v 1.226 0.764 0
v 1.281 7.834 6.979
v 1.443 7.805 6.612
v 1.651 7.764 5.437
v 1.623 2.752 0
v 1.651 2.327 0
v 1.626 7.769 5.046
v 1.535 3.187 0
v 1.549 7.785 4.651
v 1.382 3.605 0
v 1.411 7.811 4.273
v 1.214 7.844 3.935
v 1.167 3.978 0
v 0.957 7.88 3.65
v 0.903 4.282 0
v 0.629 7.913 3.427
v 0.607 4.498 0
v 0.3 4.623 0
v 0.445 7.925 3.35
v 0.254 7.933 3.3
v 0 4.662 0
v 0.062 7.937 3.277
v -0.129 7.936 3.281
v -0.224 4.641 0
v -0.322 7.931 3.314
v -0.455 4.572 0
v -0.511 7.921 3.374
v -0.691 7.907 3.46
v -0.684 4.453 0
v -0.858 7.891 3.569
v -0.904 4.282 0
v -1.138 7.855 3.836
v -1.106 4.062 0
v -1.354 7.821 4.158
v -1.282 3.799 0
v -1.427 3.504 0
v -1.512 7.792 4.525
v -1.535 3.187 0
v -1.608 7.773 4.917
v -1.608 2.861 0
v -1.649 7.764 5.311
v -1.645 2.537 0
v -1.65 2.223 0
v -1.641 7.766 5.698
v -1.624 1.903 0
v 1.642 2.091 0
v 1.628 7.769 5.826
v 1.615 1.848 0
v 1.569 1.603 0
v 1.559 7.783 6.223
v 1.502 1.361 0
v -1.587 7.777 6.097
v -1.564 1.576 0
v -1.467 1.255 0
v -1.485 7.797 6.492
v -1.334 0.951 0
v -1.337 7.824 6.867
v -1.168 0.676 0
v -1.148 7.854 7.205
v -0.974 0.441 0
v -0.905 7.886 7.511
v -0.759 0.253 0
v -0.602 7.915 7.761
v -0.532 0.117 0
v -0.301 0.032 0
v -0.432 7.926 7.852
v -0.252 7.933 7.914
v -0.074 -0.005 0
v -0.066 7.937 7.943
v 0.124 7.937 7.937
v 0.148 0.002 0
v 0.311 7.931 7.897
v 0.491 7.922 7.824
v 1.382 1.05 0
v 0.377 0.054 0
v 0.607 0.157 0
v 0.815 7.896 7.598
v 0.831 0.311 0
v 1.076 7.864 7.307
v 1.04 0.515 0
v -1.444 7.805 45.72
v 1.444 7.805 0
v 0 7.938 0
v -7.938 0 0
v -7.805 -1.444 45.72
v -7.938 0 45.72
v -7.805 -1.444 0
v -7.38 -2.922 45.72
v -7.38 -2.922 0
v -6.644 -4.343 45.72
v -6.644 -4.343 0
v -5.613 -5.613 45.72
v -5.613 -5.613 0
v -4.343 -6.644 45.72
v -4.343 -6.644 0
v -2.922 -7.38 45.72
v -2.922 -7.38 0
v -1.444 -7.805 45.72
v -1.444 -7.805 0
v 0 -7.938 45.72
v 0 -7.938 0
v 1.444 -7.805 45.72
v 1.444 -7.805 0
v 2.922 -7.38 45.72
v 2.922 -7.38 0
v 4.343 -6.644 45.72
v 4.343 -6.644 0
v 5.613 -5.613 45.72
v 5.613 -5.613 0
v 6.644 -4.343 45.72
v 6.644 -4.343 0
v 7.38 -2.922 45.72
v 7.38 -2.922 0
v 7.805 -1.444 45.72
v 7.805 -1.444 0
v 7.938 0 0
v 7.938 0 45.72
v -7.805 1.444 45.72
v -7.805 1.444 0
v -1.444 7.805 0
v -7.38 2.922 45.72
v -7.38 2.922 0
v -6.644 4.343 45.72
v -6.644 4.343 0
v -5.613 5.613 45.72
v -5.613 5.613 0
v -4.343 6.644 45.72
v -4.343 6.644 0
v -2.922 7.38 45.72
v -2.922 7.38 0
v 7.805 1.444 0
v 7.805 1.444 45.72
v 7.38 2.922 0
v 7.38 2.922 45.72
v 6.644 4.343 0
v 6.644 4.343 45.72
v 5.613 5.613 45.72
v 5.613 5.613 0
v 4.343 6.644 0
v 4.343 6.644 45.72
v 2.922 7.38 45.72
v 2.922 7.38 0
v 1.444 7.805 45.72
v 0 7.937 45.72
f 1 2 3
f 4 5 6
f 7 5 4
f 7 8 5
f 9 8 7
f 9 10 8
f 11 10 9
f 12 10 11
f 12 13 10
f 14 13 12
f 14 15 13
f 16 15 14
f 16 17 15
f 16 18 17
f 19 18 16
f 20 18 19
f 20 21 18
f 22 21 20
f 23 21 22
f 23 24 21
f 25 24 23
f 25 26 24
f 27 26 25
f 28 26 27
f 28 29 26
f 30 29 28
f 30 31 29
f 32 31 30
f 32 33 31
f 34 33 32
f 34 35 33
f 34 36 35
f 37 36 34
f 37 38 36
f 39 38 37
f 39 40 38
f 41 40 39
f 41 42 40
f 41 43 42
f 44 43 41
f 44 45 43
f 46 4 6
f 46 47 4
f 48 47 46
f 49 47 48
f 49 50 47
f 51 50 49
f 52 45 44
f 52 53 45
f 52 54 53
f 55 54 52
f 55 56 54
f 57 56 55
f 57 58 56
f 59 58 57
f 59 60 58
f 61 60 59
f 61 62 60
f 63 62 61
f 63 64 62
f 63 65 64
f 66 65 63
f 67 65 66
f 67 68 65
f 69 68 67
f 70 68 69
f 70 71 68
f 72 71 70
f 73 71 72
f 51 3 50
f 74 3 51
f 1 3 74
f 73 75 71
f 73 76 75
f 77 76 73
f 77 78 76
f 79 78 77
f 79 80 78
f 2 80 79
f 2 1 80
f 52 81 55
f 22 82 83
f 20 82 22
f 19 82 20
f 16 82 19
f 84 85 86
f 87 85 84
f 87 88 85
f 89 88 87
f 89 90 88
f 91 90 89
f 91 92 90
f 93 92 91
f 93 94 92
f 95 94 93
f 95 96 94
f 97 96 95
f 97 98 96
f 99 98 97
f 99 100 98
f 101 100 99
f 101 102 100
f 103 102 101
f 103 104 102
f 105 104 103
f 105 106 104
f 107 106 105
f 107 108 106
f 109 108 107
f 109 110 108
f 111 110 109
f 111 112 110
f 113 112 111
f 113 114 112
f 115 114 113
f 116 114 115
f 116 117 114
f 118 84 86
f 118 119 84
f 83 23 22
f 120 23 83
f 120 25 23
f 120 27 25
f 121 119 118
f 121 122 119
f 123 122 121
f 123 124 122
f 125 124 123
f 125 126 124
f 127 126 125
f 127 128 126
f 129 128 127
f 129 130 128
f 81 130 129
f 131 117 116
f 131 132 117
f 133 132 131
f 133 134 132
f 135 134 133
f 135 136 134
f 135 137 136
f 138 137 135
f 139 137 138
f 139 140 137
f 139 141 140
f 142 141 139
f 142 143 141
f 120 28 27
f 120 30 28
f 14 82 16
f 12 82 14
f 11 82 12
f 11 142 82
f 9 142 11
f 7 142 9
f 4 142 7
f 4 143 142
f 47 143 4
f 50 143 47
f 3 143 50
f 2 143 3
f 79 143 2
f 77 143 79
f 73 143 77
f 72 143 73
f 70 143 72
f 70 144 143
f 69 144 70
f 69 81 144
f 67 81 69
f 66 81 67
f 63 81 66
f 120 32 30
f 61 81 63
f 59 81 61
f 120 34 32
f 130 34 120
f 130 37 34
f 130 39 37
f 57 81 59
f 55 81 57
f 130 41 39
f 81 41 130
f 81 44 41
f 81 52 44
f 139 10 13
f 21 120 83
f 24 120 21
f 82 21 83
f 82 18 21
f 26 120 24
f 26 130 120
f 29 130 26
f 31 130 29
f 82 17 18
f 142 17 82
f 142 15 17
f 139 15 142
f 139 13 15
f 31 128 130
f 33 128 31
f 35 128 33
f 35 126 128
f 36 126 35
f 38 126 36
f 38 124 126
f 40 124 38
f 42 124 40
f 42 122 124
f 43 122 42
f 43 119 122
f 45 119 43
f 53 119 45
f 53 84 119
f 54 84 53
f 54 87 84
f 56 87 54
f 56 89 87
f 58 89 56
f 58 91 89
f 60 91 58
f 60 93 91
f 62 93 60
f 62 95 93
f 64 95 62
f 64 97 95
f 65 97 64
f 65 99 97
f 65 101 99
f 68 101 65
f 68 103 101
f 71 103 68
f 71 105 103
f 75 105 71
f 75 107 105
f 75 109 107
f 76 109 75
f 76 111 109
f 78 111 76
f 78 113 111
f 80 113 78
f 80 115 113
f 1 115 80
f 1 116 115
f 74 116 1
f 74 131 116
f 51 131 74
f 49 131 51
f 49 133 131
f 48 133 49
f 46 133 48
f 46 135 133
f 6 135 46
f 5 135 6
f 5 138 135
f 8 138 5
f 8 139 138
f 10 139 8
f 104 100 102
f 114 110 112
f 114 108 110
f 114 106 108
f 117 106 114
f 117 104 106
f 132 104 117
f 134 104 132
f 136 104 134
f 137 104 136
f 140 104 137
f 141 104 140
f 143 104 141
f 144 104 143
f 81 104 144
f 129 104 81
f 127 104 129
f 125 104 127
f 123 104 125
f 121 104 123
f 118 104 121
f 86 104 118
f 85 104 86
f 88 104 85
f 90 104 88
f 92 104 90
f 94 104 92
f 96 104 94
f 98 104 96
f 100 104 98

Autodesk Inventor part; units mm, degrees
ref_plane "YZ Plane" through (0, 0, 0) normal (1, 0, 0) x (0, 1, 0)
ref_plane "XY Plane" through (0, 0, 0) normal (0, 0, 1) x (1, 0, 0)
sketch "Sketch1" plane through (0, 0, 0) normal (0, 0, 1) x (1, 0, 0)
  circle A0 centre (0, 0) radius 7.9375
  dimension "d0" = 15.875
extrude "Extrusion1" add sketch "Sketch1" along normal blind 45.72
ref_plane "Work Plane2" through (0, 15.875, 0) normal (0, 1, 0) x (-1, 0, 0)
sketch "Sketch4" plane through (0, 15.875, 0) normal (0, 1, 0) x (-1, 0, 0)
  circle A0 centre (0, 7.62) radius 1.4605
  point P0 (0, 0)
  dimension "d6" = 2.921
  dimension "d7" = 7.62
sketch "Sketch5" plane through (0, 0, 0) normal (0, 0, -1) x (-1, 0, 0)
  circle A0 centre (0, 0) radius 7.9375 projected
  circle A1 centre (0, 0.3175) radius 1.4605
  line L0 (0, 7.9375) -> (14.2875, 7.9375)
  dimension "d8" = 2.921
  dimension "d9" = 7.62
ref_plane "Work Plane3" through (0, 7.9375, 0) normal (0, 0.7071, 0.7071) x (-1, 0, 0)
sketch "Sketch6" plane through (0, 7.9375, 0) normal (0, 0.7071, 0.7071) x (-1, 0, 0)
  circle A0 centre (0, 3.9683) radius 1.5875
  point P0 (0, 5.6127)
  dimension "d11" = 3.175
extrude "Extrusion2" add sketch "Sketch6" along normal mid plane 25.4
sketch "Sketch7" plane through (0, -3.8488, -6.1742) normal (0, -0.7071, -0.7071) x (-1, 0, 0)
  circle A0 centre (0, 0) radius 1.5875 projected
  circle A1 centre (0, 0) radius 1.5875 projected
  point P0 (0, -1.6443)
hole "Hole1" at (-0.0004, -3.8478, -6.1752) direction (0, 0.7071, 0.7071) diameter 3.302 depth 25.4 tip angle 118
properties part number "Copper"
